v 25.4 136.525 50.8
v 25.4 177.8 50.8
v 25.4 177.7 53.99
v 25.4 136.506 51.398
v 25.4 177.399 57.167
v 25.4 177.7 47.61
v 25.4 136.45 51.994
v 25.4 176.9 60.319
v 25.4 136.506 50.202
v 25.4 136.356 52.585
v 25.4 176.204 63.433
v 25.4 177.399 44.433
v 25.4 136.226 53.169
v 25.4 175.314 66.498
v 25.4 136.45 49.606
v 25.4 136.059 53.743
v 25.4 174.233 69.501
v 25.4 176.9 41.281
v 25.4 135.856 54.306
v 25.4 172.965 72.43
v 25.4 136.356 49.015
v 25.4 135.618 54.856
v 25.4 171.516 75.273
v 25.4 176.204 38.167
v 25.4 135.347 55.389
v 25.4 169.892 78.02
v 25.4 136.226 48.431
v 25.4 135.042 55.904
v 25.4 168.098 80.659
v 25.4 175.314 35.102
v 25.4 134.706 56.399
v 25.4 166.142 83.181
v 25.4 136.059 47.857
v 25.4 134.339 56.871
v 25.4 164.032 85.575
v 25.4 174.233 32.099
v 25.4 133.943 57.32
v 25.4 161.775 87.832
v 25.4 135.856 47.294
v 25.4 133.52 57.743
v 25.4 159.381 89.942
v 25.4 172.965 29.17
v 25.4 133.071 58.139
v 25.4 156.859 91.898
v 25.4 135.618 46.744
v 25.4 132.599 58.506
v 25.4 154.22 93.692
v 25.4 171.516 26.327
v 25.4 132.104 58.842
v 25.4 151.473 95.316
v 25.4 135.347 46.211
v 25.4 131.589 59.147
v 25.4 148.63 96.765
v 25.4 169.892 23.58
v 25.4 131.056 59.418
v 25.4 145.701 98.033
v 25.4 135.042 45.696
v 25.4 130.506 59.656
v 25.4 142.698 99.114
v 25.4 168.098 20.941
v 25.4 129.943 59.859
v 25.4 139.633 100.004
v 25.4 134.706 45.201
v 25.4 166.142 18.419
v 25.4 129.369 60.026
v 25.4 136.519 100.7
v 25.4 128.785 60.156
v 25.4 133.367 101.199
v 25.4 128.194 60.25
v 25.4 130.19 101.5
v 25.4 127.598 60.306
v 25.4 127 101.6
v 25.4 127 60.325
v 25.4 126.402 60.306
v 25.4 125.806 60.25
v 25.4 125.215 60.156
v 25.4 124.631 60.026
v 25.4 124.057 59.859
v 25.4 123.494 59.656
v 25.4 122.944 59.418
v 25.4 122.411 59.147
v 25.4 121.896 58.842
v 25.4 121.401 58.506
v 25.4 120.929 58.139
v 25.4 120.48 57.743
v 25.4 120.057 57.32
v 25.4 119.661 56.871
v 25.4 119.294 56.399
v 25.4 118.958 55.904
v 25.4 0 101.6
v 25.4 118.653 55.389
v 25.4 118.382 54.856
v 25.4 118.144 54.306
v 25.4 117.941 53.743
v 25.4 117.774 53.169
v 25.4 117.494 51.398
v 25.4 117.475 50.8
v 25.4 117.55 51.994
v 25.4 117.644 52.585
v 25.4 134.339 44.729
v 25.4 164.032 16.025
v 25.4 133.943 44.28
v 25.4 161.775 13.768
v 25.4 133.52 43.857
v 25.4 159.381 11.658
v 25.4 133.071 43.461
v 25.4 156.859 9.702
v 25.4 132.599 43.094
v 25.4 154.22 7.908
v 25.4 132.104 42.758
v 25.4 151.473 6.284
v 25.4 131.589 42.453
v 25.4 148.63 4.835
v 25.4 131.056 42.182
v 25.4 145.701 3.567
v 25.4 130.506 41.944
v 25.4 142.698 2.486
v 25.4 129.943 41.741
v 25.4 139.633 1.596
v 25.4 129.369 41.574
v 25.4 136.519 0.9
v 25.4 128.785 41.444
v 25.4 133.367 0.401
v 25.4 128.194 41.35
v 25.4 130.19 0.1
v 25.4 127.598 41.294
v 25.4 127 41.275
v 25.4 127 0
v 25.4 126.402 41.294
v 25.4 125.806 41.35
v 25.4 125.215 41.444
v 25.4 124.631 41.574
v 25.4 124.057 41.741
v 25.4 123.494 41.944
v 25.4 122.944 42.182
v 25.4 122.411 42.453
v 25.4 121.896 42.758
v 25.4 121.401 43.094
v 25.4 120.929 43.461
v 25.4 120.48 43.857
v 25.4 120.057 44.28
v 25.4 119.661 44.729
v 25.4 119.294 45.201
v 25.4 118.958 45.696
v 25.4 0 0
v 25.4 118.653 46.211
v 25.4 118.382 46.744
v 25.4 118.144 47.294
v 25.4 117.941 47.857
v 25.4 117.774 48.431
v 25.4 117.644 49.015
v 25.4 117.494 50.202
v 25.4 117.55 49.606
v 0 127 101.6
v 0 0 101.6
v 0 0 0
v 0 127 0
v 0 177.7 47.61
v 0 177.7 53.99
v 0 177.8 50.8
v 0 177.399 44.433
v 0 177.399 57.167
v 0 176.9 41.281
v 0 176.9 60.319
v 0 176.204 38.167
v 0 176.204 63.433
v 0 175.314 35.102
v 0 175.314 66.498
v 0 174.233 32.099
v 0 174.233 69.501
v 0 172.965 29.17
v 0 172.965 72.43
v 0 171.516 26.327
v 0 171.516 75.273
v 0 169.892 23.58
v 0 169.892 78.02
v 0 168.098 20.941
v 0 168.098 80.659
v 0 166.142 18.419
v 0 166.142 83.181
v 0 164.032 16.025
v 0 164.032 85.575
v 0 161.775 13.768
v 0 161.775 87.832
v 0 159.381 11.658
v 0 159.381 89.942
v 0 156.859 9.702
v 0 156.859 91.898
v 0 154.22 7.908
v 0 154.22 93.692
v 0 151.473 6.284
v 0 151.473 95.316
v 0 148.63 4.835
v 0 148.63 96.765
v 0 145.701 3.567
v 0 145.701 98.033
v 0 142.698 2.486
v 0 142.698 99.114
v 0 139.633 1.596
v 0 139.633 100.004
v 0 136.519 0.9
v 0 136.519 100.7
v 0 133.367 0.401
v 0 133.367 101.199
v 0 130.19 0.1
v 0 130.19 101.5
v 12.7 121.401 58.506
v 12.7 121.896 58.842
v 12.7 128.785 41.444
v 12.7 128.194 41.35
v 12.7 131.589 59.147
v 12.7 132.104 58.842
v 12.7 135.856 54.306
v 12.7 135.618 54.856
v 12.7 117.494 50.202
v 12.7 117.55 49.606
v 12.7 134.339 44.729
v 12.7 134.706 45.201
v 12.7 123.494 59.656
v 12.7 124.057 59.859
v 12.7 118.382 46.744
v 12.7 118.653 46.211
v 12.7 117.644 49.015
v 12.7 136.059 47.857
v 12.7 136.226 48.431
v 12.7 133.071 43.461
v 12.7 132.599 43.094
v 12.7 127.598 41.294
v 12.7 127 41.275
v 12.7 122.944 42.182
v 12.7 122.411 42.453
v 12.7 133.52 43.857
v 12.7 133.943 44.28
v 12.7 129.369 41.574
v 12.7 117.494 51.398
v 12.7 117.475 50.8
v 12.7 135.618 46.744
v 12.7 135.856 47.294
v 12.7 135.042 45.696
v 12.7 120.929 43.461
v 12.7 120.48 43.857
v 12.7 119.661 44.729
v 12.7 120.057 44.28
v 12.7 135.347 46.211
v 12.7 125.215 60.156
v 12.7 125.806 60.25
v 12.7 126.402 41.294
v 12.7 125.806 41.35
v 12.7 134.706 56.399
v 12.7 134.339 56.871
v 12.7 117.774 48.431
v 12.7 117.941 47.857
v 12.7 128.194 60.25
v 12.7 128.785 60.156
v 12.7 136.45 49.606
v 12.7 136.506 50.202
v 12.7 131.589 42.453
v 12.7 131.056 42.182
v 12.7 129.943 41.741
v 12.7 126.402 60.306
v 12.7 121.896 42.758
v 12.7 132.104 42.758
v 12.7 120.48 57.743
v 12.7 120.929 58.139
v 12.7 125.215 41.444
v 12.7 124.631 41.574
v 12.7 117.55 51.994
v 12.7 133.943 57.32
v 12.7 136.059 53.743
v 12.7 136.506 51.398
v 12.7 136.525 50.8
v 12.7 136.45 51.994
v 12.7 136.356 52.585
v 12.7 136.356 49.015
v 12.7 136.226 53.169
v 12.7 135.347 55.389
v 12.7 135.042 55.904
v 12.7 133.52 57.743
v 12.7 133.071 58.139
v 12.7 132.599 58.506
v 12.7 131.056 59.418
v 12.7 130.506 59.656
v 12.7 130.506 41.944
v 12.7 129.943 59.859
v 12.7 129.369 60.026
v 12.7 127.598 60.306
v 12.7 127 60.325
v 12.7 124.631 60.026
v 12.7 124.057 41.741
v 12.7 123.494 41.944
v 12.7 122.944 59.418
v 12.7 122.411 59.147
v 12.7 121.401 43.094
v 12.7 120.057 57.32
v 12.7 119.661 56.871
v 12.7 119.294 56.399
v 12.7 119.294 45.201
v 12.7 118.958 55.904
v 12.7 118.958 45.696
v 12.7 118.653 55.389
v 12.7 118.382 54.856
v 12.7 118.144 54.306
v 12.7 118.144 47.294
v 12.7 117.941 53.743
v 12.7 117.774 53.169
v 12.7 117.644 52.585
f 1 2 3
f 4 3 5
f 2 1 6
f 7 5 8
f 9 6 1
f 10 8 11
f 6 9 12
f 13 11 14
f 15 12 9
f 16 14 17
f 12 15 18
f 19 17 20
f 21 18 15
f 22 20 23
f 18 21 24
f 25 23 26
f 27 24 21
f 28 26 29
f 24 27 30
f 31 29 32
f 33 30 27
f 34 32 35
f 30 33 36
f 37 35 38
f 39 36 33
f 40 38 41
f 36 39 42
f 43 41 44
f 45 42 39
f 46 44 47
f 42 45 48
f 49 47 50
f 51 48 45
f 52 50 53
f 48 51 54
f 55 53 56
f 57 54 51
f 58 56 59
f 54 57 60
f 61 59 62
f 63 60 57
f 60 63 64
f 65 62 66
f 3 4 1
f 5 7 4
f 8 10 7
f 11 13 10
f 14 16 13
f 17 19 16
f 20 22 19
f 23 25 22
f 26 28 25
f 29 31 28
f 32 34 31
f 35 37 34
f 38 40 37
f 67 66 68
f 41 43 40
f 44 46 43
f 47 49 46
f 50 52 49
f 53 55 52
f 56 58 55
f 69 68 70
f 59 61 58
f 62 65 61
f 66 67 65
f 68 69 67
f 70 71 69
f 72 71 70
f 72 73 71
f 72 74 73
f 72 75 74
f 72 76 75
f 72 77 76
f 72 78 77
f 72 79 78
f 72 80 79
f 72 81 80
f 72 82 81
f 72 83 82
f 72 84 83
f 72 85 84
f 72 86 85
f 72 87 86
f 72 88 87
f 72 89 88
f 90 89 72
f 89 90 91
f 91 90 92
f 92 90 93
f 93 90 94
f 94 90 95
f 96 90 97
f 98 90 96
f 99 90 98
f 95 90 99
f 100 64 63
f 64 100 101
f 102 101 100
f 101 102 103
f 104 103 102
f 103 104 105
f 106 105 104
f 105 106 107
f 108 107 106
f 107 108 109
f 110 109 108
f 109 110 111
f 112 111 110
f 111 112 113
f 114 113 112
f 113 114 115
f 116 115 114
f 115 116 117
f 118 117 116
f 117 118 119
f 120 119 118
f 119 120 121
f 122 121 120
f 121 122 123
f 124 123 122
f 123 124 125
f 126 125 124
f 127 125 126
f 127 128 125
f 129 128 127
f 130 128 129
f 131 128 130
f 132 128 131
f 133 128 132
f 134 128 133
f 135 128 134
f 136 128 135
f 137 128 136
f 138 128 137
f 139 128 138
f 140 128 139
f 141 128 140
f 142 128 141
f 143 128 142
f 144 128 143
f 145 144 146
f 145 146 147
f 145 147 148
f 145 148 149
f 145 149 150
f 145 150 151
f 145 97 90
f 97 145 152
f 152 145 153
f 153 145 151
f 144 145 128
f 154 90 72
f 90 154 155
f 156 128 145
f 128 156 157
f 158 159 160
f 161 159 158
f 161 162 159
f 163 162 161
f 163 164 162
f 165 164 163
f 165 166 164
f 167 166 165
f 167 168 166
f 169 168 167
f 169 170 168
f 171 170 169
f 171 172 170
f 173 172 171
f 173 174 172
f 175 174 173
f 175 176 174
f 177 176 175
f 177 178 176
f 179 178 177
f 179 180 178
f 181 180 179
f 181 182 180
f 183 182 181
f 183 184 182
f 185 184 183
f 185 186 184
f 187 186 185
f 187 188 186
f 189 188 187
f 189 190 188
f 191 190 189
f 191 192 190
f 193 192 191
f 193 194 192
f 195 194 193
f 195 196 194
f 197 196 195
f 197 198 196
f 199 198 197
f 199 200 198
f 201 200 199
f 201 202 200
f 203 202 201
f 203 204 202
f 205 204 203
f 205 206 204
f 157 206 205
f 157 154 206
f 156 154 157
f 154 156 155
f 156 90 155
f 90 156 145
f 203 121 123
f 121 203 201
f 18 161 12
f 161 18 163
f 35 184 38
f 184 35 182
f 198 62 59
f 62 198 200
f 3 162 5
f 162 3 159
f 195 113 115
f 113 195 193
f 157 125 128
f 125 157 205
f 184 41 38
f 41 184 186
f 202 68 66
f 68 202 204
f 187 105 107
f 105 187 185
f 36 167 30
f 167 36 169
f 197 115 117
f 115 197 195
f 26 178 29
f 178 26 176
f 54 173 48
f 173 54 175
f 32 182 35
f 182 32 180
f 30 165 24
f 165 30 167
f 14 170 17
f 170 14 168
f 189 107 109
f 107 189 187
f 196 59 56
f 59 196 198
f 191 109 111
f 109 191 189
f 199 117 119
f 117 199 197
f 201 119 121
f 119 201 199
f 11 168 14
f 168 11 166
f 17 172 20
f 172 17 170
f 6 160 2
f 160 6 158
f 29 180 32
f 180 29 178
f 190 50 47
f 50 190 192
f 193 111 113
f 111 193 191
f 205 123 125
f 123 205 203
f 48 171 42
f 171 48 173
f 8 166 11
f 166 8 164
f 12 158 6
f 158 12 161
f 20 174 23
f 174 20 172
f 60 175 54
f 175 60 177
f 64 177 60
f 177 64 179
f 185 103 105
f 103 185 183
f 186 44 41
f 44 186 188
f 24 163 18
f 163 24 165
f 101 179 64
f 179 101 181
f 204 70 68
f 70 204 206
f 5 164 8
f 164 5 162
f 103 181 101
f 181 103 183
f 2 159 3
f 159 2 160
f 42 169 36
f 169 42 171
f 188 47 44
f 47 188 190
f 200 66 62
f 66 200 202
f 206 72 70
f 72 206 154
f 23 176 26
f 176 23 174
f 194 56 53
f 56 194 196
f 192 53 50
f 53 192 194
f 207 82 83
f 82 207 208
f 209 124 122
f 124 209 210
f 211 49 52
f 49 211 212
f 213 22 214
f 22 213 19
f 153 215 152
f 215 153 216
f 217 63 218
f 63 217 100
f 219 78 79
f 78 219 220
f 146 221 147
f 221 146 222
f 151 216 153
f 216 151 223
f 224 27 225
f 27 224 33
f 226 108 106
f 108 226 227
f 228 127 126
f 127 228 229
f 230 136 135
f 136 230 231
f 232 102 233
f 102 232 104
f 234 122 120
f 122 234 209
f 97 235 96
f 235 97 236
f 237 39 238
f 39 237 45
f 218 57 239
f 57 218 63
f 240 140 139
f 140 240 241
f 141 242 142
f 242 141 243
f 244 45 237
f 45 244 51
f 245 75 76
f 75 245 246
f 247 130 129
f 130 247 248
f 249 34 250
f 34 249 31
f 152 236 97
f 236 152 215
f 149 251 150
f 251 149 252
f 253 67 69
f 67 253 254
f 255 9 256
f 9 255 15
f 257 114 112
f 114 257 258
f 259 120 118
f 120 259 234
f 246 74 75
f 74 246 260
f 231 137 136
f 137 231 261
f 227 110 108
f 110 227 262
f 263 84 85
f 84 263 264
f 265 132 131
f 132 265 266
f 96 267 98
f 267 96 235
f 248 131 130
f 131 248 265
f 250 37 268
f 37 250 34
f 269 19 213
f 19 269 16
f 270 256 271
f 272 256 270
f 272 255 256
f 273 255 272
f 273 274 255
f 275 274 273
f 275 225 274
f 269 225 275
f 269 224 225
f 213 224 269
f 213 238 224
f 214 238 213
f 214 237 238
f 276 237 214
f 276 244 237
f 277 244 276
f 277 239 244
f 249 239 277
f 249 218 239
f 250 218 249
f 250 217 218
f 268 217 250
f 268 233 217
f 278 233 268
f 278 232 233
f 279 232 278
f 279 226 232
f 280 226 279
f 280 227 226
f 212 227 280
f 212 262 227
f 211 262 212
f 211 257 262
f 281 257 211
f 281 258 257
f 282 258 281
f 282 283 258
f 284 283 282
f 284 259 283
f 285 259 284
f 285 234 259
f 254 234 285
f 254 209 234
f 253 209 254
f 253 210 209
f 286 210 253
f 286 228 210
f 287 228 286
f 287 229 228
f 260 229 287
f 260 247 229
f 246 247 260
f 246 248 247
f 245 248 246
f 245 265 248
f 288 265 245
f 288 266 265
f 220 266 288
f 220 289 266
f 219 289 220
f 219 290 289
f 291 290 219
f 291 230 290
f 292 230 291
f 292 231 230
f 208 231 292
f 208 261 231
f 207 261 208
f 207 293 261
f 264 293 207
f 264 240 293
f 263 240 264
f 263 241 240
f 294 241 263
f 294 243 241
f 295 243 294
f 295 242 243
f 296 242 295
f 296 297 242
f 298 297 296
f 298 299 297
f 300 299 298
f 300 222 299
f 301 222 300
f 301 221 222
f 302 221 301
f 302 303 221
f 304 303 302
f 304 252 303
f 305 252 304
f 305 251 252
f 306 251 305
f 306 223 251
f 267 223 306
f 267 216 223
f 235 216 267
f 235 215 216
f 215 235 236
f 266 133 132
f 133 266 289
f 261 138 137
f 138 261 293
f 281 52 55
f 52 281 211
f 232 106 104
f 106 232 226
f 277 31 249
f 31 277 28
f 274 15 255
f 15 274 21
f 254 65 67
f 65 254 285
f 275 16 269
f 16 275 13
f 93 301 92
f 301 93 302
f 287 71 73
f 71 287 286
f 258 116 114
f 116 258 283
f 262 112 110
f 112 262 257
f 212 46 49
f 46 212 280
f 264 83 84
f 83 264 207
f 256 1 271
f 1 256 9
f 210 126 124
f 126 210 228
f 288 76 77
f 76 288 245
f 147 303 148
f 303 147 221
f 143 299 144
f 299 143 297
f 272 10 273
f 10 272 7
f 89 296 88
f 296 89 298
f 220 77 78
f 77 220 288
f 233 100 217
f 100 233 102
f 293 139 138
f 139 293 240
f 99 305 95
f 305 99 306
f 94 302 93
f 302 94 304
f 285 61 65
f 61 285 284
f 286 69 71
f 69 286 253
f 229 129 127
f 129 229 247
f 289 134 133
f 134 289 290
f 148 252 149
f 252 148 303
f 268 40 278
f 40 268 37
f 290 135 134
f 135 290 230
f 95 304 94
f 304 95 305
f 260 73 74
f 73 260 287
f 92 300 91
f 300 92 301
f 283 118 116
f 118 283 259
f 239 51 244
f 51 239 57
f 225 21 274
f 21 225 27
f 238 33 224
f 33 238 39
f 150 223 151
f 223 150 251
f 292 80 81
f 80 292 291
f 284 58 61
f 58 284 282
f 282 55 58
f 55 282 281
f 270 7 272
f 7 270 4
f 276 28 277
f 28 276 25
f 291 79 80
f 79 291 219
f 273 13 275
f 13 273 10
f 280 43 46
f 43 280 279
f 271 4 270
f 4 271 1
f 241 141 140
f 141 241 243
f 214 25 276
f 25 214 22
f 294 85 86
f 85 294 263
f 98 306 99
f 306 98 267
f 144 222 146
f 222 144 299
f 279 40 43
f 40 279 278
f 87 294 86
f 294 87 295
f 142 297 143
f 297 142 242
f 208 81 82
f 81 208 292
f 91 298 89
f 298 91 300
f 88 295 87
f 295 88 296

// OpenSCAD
to_mm = 25.4;
$fn=100;
thickness = 1 * to_mm;
rod_diameter = 0.75 * to_mm;
depth = 5 * to_mm;
height = 4 * to_mm;

module base(){
    cube([thickness,depth,height]);
        translate([0,depth,height/2]){
            rotate([0,90,0]){
                cylinder(h = thickness, r = height/2);
               }
        }; 
};

module rod(){
    translate([thickness/2,depth,height/2]){
        rotate([0,90,0]){
        cylinder(h = thickness/2, r = rod_diameter/2);
        };
    };
    
    };

difference(){
base();
    rod();
    }
